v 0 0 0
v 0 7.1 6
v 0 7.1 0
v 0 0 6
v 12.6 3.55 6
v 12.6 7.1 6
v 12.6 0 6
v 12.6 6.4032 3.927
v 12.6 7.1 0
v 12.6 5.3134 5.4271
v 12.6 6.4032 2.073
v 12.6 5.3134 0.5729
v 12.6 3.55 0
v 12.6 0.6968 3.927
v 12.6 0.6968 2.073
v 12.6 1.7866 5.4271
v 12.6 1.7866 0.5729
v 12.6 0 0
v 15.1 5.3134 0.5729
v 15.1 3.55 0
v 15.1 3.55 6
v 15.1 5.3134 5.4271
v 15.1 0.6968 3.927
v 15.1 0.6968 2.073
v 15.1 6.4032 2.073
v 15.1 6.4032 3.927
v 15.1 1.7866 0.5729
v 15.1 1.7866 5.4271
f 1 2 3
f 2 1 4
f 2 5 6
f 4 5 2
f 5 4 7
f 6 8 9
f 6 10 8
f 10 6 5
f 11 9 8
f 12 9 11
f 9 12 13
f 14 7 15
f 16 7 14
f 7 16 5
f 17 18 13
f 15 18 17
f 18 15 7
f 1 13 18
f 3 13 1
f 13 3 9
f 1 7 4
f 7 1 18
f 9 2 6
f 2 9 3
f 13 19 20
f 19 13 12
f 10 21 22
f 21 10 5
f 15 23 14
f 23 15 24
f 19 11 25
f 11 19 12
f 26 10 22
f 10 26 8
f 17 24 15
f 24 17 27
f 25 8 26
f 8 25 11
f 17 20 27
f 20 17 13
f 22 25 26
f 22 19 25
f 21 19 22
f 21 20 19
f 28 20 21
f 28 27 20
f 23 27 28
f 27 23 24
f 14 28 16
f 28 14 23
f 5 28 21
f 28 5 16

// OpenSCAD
// main jack
jack_l = 12.6;
jack_w = 7.1;
jack_h = 6.0;
// length, width, height
cube([jack_l, jack_w, jack_h]);

// connector barrel
conn_l = 2.5;
conn_rad = 3.0;
translate([jack_l, jack_w/2, jack_h/2])
rotate([0, 90, 0])
cylinder(conn_l, conn_rad, conn_rad, center=false);
